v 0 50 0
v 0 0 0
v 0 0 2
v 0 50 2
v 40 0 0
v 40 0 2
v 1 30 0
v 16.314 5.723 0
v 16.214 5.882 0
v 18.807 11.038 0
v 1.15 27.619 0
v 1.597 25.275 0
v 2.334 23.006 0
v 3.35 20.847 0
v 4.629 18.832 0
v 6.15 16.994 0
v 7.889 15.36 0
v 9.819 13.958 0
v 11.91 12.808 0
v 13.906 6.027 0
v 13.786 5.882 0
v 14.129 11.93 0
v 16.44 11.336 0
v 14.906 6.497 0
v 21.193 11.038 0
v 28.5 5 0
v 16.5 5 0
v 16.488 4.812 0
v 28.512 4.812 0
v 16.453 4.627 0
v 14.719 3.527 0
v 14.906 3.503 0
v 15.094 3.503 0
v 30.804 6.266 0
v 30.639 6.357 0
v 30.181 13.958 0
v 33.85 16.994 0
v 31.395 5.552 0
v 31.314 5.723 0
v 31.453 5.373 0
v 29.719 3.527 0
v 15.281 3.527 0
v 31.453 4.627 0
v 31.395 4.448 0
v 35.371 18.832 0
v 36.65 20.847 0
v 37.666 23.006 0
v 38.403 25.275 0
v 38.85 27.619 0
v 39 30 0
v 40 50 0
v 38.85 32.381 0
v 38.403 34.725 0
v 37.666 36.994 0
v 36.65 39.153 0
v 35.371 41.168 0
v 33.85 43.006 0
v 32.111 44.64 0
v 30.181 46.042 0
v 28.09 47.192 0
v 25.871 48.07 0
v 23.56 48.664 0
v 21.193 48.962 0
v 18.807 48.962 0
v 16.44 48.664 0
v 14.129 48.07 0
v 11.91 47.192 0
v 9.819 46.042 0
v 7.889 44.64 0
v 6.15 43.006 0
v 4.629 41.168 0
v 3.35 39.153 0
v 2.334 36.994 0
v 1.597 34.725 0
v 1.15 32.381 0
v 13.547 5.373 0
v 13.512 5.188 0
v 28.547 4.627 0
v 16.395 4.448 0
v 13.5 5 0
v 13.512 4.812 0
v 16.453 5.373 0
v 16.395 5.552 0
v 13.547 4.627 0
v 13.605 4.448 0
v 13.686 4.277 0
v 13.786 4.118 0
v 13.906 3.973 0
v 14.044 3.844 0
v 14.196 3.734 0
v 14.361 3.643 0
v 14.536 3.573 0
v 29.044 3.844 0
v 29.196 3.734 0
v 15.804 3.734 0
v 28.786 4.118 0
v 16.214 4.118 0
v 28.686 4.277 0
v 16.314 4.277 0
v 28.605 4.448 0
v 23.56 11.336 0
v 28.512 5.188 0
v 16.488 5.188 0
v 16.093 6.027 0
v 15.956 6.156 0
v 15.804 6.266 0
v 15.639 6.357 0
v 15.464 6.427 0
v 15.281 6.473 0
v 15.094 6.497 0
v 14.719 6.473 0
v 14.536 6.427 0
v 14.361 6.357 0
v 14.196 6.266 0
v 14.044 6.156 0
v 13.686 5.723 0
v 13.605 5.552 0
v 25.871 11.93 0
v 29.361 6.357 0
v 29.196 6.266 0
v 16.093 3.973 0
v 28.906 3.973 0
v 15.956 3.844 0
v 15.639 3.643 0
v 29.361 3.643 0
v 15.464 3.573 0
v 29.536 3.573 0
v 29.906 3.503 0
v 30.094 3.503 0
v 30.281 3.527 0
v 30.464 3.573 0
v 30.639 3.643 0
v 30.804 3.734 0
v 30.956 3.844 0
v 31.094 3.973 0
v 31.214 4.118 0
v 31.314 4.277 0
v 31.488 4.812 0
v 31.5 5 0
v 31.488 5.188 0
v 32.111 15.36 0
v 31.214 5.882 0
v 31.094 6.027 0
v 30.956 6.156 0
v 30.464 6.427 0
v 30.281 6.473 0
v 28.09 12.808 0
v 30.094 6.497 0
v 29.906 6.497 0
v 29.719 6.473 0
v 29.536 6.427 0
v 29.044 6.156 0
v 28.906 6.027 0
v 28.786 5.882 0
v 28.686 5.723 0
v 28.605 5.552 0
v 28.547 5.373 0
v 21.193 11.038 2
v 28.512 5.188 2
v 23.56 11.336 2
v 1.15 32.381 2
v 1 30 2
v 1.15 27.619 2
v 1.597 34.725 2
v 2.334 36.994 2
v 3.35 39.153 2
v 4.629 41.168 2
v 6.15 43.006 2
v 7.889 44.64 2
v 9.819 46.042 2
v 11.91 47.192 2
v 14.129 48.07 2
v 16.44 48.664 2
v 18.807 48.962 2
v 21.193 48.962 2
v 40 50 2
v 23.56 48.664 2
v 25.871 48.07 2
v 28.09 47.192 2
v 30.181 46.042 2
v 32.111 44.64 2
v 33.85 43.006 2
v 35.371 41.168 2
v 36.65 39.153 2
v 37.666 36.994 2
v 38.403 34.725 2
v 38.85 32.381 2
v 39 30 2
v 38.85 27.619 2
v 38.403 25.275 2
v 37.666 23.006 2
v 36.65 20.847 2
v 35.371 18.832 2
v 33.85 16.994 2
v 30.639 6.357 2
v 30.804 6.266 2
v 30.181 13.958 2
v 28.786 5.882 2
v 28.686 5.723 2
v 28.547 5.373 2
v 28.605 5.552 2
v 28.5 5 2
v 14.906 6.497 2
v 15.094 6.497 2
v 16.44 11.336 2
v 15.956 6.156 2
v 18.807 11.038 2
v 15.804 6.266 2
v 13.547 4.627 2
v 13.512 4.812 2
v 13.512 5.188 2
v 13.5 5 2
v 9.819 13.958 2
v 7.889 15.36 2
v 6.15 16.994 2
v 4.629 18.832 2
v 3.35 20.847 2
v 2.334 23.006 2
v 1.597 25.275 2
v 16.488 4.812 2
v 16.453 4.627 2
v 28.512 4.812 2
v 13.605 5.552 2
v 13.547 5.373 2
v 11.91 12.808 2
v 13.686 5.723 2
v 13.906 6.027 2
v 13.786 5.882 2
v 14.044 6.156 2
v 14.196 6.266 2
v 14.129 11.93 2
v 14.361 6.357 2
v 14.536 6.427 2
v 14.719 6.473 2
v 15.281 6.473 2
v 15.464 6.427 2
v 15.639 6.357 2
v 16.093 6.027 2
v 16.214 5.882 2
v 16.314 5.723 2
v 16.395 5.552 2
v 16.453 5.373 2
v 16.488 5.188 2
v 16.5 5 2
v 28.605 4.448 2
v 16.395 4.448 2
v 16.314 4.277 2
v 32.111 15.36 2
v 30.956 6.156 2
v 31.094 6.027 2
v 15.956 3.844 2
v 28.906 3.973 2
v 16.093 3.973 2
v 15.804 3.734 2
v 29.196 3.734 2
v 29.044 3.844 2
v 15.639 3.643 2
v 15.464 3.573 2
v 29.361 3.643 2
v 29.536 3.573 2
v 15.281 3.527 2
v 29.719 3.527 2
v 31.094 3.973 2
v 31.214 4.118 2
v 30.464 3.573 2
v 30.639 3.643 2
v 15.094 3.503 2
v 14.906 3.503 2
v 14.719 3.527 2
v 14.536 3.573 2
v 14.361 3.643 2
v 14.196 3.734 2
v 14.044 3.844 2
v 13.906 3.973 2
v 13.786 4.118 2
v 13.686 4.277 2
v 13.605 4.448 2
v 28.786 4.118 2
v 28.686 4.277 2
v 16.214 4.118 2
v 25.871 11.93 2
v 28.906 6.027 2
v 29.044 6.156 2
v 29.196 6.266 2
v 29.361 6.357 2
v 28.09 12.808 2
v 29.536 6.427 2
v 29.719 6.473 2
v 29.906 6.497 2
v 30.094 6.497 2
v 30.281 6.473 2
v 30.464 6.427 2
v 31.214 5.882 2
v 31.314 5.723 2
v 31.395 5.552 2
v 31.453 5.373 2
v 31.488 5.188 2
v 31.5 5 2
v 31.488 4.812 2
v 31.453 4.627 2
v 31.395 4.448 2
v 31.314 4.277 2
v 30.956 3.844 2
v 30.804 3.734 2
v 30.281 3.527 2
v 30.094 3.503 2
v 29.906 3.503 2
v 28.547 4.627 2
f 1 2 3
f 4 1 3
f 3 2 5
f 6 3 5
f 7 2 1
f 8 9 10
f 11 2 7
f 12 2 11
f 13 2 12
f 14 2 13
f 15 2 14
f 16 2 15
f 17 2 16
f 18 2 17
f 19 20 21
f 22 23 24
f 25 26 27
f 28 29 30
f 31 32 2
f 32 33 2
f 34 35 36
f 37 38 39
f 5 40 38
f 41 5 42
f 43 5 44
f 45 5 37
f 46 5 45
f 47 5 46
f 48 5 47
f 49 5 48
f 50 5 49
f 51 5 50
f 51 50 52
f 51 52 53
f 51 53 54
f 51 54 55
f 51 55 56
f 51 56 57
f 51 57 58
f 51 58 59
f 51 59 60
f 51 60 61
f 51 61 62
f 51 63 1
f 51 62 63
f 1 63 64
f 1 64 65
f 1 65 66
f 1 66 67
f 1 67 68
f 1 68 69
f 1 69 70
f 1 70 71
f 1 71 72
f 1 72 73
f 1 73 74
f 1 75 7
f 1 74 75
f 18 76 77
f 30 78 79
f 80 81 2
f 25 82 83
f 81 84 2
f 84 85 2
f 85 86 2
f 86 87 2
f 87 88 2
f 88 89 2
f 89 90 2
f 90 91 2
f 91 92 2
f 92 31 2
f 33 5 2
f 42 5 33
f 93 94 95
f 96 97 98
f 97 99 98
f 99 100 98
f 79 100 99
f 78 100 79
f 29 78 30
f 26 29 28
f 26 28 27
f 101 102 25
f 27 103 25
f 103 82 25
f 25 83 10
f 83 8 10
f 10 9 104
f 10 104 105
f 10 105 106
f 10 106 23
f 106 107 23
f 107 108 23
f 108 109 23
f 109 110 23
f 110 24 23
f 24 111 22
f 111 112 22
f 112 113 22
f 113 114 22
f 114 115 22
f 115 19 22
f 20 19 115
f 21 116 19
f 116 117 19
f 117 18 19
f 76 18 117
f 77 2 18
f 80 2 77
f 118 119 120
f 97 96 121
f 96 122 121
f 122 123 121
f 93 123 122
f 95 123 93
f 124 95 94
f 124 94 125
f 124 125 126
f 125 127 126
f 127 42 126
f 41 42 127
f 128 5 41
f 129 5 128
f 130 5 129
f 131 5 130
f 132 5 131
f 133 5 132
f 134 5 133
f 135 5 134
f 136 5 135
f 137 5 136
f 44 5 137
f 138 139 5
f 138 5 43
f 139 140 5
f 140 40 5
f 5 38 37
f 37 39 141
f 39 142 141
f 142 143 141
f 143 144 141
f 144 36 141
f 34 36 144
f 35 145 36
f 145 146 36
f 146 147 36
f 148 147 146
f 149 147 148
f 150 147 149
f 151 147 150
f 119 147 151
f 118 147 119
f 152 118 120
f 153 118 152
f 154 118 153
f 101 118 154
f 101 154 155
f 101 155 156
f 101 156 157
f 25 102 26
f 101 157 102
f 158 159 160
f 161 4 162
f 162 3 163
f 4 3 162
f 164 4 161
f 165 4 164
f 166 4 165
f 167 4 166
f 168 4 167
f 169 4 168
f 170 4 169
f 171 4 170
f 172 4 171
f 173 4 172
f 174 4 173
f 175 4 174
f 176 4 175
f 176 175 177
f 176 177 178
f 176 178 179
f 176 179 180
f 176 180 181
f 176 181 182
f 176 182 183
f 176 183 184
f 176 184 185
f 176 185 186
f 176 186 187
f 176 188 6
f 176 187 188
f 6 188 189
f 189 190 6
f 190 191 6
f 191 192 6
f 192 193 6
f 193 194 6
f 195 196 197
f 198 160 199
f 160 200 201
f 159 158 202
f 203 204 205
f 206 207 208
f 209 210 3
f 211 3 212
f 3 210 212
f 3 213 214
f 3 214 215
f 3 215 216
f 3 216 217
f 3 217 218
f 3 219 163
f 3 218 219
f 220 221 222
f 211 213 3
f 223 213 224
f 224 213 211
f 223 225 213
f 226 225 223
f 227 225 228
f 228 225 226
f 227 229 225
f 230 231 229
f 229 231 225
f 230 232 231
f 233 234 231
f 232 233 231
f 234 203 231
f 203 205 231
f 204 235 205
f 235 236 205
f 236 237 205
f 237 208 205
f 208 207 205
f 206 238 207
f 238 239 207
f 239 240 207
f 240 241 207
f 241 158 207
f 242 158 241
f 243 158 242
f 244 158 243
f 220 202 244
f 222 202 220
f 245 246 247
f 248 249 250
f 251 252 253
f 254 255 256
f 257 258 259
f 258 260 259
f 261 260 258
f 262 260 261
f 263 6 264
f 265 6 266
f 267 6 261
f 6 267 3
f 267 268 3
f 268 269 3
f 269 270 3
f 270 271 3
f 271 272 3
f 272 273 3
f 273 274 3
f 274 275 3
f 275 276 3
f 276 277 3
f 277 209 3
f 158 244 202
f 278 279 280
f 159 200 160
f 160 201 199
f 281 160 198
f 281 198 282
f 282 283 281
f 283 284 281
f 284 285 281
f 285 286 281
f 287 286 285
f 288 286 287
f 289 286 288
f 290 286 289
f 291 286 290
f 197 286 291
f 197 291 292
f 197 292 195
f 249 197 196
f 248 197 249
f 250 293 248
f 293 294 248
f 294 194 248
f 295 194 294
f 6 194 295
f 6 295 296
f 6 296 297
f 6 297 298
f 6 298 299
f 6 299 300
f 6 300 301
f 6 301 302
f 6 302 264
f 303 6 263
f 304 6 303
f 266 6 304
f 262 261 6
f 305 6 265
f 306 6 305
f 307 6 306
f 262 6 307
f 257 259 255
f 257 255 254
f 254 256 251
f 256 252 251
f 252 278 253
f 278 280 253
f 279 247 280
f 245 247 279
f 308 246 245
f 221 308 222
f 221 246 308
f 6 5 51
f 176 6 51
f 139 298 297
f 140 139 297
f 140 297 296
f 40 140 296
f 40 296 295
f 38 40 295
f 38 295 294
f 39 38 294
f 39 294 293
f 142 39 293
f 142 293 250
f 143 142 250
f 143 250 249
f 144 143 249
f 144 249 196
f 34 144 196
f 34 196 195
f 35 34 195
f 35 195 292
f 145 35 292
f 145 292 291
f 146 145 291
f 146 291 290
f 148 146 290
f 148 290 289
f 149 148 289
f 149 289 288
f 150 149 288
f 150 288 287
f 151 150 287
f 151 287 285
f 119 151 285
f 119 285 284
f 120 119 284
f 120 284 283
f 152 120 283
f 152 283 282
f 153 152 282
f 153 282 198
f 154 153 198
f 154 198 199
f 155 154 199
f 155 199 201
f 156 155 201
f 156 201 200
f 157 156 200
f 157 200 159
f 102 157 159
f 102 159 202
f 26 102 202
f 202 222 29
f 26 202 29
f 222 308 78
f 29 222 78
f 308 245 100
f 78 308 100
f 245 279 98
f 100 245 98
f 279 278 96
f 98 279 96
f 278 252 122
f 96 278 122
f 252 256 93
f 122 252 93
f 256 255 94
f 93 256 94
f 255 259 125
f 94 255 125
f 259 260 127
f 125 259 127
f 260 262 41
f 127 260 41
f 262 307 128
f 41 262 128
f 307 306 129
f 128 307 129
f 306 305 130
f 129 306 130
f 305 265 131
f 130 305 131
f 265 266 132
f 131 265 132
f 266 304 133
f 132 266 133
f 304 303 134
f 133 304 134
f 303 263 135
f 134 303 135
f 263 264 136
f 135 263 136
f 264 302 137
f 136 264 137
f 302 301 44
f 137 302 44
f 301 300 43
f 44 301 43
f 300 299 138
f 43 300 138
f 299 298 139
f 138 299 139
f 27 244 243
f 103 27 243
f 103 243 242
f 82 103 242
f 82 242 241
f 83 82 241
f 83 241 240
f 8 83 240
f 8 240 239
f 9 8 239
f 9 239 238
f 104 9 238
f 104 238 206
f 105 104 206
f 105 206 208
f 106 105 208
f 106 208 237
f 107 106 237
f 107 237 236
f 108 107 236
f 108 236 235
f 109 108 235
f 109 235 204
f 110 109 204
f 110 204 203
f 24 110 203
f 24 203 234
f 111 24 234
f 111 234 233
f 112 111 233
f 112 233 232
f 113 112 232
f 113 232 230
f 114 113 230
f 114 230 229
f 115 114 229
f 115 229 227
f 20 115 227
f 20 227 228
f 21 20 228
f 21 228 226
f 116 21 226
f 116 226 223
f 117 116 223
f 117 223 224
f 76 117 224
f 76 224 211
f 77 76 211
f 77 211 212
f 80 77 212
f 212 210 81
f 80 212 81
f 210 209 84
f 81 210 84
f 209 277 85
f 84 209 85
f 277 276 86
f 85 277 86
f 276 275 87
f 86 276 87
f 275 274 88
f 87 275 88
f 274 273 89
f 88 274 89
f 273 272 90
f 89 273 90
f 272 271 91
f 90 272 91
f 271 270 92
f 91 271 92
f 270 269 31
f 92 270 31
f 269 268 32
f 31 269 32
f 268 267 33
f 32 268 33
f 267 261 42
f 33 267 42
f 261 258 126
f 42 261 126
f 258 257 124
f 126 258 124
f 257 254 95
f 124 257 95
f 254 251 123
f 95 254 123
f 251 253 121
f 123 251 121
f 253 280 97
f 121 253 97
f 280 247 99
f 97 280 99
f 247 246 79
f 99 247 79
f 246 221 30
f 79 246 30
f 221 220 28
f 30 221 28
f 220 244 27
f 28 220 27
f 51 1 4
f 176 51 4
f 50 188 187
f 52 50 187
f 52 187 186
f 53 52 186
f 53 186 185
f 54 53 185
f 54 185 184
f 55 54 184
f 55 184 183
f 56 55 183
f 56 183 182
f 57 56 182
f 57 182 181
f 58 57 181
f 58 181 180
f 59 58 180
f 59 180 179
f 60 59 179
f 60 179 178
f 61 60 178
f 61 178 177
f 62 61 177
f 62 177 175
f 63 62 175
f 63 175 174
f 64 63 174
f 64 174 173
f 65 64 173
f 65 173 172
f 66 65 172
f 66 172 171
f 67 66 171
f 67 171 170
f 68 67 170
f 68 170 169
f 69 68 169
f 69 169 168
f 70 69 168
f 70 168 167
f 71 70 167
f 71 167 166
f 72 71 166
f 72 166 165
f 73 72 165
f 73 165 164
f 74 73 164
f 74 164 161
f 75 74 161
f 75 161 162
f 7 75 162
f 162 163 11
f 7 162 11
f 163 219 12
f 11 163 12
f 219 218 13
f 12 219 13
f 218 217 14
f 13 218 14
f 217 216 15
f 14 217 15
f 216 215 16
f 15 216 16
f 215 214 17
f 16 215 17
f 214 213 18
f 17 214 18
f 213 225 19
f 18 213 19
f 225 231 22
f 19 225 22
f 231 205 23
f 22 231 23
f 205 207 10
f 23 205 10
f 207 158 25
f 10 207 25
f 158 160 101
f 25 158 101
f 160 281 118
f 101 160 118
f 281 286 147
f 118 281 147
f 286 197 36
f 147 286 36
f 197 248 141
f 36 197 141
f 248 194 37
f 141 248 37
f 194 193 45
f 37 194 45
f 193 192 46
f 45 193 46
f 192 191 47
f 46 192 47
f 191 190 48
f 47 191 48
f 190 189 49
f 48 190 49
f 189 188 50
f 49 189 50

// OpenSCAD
//this is a fan mount for a Greg's Extruder, 40mm fan, & Jhead mk8
//screws into hotend mounting screw holes
$fn = 50;

difference(){
    difference(){
        cube([40,10,2]);

        translate([30,5,-1])
            cylinder(20,d=3);
        }
    translate([15,5,-1])
        cylinder(20,d=3);
    }
    
translate([0,10,0])
        difference(){
        cube([40,40,2]);
        translate([20,20,0])
        cylinder(38,d=38);
        }
